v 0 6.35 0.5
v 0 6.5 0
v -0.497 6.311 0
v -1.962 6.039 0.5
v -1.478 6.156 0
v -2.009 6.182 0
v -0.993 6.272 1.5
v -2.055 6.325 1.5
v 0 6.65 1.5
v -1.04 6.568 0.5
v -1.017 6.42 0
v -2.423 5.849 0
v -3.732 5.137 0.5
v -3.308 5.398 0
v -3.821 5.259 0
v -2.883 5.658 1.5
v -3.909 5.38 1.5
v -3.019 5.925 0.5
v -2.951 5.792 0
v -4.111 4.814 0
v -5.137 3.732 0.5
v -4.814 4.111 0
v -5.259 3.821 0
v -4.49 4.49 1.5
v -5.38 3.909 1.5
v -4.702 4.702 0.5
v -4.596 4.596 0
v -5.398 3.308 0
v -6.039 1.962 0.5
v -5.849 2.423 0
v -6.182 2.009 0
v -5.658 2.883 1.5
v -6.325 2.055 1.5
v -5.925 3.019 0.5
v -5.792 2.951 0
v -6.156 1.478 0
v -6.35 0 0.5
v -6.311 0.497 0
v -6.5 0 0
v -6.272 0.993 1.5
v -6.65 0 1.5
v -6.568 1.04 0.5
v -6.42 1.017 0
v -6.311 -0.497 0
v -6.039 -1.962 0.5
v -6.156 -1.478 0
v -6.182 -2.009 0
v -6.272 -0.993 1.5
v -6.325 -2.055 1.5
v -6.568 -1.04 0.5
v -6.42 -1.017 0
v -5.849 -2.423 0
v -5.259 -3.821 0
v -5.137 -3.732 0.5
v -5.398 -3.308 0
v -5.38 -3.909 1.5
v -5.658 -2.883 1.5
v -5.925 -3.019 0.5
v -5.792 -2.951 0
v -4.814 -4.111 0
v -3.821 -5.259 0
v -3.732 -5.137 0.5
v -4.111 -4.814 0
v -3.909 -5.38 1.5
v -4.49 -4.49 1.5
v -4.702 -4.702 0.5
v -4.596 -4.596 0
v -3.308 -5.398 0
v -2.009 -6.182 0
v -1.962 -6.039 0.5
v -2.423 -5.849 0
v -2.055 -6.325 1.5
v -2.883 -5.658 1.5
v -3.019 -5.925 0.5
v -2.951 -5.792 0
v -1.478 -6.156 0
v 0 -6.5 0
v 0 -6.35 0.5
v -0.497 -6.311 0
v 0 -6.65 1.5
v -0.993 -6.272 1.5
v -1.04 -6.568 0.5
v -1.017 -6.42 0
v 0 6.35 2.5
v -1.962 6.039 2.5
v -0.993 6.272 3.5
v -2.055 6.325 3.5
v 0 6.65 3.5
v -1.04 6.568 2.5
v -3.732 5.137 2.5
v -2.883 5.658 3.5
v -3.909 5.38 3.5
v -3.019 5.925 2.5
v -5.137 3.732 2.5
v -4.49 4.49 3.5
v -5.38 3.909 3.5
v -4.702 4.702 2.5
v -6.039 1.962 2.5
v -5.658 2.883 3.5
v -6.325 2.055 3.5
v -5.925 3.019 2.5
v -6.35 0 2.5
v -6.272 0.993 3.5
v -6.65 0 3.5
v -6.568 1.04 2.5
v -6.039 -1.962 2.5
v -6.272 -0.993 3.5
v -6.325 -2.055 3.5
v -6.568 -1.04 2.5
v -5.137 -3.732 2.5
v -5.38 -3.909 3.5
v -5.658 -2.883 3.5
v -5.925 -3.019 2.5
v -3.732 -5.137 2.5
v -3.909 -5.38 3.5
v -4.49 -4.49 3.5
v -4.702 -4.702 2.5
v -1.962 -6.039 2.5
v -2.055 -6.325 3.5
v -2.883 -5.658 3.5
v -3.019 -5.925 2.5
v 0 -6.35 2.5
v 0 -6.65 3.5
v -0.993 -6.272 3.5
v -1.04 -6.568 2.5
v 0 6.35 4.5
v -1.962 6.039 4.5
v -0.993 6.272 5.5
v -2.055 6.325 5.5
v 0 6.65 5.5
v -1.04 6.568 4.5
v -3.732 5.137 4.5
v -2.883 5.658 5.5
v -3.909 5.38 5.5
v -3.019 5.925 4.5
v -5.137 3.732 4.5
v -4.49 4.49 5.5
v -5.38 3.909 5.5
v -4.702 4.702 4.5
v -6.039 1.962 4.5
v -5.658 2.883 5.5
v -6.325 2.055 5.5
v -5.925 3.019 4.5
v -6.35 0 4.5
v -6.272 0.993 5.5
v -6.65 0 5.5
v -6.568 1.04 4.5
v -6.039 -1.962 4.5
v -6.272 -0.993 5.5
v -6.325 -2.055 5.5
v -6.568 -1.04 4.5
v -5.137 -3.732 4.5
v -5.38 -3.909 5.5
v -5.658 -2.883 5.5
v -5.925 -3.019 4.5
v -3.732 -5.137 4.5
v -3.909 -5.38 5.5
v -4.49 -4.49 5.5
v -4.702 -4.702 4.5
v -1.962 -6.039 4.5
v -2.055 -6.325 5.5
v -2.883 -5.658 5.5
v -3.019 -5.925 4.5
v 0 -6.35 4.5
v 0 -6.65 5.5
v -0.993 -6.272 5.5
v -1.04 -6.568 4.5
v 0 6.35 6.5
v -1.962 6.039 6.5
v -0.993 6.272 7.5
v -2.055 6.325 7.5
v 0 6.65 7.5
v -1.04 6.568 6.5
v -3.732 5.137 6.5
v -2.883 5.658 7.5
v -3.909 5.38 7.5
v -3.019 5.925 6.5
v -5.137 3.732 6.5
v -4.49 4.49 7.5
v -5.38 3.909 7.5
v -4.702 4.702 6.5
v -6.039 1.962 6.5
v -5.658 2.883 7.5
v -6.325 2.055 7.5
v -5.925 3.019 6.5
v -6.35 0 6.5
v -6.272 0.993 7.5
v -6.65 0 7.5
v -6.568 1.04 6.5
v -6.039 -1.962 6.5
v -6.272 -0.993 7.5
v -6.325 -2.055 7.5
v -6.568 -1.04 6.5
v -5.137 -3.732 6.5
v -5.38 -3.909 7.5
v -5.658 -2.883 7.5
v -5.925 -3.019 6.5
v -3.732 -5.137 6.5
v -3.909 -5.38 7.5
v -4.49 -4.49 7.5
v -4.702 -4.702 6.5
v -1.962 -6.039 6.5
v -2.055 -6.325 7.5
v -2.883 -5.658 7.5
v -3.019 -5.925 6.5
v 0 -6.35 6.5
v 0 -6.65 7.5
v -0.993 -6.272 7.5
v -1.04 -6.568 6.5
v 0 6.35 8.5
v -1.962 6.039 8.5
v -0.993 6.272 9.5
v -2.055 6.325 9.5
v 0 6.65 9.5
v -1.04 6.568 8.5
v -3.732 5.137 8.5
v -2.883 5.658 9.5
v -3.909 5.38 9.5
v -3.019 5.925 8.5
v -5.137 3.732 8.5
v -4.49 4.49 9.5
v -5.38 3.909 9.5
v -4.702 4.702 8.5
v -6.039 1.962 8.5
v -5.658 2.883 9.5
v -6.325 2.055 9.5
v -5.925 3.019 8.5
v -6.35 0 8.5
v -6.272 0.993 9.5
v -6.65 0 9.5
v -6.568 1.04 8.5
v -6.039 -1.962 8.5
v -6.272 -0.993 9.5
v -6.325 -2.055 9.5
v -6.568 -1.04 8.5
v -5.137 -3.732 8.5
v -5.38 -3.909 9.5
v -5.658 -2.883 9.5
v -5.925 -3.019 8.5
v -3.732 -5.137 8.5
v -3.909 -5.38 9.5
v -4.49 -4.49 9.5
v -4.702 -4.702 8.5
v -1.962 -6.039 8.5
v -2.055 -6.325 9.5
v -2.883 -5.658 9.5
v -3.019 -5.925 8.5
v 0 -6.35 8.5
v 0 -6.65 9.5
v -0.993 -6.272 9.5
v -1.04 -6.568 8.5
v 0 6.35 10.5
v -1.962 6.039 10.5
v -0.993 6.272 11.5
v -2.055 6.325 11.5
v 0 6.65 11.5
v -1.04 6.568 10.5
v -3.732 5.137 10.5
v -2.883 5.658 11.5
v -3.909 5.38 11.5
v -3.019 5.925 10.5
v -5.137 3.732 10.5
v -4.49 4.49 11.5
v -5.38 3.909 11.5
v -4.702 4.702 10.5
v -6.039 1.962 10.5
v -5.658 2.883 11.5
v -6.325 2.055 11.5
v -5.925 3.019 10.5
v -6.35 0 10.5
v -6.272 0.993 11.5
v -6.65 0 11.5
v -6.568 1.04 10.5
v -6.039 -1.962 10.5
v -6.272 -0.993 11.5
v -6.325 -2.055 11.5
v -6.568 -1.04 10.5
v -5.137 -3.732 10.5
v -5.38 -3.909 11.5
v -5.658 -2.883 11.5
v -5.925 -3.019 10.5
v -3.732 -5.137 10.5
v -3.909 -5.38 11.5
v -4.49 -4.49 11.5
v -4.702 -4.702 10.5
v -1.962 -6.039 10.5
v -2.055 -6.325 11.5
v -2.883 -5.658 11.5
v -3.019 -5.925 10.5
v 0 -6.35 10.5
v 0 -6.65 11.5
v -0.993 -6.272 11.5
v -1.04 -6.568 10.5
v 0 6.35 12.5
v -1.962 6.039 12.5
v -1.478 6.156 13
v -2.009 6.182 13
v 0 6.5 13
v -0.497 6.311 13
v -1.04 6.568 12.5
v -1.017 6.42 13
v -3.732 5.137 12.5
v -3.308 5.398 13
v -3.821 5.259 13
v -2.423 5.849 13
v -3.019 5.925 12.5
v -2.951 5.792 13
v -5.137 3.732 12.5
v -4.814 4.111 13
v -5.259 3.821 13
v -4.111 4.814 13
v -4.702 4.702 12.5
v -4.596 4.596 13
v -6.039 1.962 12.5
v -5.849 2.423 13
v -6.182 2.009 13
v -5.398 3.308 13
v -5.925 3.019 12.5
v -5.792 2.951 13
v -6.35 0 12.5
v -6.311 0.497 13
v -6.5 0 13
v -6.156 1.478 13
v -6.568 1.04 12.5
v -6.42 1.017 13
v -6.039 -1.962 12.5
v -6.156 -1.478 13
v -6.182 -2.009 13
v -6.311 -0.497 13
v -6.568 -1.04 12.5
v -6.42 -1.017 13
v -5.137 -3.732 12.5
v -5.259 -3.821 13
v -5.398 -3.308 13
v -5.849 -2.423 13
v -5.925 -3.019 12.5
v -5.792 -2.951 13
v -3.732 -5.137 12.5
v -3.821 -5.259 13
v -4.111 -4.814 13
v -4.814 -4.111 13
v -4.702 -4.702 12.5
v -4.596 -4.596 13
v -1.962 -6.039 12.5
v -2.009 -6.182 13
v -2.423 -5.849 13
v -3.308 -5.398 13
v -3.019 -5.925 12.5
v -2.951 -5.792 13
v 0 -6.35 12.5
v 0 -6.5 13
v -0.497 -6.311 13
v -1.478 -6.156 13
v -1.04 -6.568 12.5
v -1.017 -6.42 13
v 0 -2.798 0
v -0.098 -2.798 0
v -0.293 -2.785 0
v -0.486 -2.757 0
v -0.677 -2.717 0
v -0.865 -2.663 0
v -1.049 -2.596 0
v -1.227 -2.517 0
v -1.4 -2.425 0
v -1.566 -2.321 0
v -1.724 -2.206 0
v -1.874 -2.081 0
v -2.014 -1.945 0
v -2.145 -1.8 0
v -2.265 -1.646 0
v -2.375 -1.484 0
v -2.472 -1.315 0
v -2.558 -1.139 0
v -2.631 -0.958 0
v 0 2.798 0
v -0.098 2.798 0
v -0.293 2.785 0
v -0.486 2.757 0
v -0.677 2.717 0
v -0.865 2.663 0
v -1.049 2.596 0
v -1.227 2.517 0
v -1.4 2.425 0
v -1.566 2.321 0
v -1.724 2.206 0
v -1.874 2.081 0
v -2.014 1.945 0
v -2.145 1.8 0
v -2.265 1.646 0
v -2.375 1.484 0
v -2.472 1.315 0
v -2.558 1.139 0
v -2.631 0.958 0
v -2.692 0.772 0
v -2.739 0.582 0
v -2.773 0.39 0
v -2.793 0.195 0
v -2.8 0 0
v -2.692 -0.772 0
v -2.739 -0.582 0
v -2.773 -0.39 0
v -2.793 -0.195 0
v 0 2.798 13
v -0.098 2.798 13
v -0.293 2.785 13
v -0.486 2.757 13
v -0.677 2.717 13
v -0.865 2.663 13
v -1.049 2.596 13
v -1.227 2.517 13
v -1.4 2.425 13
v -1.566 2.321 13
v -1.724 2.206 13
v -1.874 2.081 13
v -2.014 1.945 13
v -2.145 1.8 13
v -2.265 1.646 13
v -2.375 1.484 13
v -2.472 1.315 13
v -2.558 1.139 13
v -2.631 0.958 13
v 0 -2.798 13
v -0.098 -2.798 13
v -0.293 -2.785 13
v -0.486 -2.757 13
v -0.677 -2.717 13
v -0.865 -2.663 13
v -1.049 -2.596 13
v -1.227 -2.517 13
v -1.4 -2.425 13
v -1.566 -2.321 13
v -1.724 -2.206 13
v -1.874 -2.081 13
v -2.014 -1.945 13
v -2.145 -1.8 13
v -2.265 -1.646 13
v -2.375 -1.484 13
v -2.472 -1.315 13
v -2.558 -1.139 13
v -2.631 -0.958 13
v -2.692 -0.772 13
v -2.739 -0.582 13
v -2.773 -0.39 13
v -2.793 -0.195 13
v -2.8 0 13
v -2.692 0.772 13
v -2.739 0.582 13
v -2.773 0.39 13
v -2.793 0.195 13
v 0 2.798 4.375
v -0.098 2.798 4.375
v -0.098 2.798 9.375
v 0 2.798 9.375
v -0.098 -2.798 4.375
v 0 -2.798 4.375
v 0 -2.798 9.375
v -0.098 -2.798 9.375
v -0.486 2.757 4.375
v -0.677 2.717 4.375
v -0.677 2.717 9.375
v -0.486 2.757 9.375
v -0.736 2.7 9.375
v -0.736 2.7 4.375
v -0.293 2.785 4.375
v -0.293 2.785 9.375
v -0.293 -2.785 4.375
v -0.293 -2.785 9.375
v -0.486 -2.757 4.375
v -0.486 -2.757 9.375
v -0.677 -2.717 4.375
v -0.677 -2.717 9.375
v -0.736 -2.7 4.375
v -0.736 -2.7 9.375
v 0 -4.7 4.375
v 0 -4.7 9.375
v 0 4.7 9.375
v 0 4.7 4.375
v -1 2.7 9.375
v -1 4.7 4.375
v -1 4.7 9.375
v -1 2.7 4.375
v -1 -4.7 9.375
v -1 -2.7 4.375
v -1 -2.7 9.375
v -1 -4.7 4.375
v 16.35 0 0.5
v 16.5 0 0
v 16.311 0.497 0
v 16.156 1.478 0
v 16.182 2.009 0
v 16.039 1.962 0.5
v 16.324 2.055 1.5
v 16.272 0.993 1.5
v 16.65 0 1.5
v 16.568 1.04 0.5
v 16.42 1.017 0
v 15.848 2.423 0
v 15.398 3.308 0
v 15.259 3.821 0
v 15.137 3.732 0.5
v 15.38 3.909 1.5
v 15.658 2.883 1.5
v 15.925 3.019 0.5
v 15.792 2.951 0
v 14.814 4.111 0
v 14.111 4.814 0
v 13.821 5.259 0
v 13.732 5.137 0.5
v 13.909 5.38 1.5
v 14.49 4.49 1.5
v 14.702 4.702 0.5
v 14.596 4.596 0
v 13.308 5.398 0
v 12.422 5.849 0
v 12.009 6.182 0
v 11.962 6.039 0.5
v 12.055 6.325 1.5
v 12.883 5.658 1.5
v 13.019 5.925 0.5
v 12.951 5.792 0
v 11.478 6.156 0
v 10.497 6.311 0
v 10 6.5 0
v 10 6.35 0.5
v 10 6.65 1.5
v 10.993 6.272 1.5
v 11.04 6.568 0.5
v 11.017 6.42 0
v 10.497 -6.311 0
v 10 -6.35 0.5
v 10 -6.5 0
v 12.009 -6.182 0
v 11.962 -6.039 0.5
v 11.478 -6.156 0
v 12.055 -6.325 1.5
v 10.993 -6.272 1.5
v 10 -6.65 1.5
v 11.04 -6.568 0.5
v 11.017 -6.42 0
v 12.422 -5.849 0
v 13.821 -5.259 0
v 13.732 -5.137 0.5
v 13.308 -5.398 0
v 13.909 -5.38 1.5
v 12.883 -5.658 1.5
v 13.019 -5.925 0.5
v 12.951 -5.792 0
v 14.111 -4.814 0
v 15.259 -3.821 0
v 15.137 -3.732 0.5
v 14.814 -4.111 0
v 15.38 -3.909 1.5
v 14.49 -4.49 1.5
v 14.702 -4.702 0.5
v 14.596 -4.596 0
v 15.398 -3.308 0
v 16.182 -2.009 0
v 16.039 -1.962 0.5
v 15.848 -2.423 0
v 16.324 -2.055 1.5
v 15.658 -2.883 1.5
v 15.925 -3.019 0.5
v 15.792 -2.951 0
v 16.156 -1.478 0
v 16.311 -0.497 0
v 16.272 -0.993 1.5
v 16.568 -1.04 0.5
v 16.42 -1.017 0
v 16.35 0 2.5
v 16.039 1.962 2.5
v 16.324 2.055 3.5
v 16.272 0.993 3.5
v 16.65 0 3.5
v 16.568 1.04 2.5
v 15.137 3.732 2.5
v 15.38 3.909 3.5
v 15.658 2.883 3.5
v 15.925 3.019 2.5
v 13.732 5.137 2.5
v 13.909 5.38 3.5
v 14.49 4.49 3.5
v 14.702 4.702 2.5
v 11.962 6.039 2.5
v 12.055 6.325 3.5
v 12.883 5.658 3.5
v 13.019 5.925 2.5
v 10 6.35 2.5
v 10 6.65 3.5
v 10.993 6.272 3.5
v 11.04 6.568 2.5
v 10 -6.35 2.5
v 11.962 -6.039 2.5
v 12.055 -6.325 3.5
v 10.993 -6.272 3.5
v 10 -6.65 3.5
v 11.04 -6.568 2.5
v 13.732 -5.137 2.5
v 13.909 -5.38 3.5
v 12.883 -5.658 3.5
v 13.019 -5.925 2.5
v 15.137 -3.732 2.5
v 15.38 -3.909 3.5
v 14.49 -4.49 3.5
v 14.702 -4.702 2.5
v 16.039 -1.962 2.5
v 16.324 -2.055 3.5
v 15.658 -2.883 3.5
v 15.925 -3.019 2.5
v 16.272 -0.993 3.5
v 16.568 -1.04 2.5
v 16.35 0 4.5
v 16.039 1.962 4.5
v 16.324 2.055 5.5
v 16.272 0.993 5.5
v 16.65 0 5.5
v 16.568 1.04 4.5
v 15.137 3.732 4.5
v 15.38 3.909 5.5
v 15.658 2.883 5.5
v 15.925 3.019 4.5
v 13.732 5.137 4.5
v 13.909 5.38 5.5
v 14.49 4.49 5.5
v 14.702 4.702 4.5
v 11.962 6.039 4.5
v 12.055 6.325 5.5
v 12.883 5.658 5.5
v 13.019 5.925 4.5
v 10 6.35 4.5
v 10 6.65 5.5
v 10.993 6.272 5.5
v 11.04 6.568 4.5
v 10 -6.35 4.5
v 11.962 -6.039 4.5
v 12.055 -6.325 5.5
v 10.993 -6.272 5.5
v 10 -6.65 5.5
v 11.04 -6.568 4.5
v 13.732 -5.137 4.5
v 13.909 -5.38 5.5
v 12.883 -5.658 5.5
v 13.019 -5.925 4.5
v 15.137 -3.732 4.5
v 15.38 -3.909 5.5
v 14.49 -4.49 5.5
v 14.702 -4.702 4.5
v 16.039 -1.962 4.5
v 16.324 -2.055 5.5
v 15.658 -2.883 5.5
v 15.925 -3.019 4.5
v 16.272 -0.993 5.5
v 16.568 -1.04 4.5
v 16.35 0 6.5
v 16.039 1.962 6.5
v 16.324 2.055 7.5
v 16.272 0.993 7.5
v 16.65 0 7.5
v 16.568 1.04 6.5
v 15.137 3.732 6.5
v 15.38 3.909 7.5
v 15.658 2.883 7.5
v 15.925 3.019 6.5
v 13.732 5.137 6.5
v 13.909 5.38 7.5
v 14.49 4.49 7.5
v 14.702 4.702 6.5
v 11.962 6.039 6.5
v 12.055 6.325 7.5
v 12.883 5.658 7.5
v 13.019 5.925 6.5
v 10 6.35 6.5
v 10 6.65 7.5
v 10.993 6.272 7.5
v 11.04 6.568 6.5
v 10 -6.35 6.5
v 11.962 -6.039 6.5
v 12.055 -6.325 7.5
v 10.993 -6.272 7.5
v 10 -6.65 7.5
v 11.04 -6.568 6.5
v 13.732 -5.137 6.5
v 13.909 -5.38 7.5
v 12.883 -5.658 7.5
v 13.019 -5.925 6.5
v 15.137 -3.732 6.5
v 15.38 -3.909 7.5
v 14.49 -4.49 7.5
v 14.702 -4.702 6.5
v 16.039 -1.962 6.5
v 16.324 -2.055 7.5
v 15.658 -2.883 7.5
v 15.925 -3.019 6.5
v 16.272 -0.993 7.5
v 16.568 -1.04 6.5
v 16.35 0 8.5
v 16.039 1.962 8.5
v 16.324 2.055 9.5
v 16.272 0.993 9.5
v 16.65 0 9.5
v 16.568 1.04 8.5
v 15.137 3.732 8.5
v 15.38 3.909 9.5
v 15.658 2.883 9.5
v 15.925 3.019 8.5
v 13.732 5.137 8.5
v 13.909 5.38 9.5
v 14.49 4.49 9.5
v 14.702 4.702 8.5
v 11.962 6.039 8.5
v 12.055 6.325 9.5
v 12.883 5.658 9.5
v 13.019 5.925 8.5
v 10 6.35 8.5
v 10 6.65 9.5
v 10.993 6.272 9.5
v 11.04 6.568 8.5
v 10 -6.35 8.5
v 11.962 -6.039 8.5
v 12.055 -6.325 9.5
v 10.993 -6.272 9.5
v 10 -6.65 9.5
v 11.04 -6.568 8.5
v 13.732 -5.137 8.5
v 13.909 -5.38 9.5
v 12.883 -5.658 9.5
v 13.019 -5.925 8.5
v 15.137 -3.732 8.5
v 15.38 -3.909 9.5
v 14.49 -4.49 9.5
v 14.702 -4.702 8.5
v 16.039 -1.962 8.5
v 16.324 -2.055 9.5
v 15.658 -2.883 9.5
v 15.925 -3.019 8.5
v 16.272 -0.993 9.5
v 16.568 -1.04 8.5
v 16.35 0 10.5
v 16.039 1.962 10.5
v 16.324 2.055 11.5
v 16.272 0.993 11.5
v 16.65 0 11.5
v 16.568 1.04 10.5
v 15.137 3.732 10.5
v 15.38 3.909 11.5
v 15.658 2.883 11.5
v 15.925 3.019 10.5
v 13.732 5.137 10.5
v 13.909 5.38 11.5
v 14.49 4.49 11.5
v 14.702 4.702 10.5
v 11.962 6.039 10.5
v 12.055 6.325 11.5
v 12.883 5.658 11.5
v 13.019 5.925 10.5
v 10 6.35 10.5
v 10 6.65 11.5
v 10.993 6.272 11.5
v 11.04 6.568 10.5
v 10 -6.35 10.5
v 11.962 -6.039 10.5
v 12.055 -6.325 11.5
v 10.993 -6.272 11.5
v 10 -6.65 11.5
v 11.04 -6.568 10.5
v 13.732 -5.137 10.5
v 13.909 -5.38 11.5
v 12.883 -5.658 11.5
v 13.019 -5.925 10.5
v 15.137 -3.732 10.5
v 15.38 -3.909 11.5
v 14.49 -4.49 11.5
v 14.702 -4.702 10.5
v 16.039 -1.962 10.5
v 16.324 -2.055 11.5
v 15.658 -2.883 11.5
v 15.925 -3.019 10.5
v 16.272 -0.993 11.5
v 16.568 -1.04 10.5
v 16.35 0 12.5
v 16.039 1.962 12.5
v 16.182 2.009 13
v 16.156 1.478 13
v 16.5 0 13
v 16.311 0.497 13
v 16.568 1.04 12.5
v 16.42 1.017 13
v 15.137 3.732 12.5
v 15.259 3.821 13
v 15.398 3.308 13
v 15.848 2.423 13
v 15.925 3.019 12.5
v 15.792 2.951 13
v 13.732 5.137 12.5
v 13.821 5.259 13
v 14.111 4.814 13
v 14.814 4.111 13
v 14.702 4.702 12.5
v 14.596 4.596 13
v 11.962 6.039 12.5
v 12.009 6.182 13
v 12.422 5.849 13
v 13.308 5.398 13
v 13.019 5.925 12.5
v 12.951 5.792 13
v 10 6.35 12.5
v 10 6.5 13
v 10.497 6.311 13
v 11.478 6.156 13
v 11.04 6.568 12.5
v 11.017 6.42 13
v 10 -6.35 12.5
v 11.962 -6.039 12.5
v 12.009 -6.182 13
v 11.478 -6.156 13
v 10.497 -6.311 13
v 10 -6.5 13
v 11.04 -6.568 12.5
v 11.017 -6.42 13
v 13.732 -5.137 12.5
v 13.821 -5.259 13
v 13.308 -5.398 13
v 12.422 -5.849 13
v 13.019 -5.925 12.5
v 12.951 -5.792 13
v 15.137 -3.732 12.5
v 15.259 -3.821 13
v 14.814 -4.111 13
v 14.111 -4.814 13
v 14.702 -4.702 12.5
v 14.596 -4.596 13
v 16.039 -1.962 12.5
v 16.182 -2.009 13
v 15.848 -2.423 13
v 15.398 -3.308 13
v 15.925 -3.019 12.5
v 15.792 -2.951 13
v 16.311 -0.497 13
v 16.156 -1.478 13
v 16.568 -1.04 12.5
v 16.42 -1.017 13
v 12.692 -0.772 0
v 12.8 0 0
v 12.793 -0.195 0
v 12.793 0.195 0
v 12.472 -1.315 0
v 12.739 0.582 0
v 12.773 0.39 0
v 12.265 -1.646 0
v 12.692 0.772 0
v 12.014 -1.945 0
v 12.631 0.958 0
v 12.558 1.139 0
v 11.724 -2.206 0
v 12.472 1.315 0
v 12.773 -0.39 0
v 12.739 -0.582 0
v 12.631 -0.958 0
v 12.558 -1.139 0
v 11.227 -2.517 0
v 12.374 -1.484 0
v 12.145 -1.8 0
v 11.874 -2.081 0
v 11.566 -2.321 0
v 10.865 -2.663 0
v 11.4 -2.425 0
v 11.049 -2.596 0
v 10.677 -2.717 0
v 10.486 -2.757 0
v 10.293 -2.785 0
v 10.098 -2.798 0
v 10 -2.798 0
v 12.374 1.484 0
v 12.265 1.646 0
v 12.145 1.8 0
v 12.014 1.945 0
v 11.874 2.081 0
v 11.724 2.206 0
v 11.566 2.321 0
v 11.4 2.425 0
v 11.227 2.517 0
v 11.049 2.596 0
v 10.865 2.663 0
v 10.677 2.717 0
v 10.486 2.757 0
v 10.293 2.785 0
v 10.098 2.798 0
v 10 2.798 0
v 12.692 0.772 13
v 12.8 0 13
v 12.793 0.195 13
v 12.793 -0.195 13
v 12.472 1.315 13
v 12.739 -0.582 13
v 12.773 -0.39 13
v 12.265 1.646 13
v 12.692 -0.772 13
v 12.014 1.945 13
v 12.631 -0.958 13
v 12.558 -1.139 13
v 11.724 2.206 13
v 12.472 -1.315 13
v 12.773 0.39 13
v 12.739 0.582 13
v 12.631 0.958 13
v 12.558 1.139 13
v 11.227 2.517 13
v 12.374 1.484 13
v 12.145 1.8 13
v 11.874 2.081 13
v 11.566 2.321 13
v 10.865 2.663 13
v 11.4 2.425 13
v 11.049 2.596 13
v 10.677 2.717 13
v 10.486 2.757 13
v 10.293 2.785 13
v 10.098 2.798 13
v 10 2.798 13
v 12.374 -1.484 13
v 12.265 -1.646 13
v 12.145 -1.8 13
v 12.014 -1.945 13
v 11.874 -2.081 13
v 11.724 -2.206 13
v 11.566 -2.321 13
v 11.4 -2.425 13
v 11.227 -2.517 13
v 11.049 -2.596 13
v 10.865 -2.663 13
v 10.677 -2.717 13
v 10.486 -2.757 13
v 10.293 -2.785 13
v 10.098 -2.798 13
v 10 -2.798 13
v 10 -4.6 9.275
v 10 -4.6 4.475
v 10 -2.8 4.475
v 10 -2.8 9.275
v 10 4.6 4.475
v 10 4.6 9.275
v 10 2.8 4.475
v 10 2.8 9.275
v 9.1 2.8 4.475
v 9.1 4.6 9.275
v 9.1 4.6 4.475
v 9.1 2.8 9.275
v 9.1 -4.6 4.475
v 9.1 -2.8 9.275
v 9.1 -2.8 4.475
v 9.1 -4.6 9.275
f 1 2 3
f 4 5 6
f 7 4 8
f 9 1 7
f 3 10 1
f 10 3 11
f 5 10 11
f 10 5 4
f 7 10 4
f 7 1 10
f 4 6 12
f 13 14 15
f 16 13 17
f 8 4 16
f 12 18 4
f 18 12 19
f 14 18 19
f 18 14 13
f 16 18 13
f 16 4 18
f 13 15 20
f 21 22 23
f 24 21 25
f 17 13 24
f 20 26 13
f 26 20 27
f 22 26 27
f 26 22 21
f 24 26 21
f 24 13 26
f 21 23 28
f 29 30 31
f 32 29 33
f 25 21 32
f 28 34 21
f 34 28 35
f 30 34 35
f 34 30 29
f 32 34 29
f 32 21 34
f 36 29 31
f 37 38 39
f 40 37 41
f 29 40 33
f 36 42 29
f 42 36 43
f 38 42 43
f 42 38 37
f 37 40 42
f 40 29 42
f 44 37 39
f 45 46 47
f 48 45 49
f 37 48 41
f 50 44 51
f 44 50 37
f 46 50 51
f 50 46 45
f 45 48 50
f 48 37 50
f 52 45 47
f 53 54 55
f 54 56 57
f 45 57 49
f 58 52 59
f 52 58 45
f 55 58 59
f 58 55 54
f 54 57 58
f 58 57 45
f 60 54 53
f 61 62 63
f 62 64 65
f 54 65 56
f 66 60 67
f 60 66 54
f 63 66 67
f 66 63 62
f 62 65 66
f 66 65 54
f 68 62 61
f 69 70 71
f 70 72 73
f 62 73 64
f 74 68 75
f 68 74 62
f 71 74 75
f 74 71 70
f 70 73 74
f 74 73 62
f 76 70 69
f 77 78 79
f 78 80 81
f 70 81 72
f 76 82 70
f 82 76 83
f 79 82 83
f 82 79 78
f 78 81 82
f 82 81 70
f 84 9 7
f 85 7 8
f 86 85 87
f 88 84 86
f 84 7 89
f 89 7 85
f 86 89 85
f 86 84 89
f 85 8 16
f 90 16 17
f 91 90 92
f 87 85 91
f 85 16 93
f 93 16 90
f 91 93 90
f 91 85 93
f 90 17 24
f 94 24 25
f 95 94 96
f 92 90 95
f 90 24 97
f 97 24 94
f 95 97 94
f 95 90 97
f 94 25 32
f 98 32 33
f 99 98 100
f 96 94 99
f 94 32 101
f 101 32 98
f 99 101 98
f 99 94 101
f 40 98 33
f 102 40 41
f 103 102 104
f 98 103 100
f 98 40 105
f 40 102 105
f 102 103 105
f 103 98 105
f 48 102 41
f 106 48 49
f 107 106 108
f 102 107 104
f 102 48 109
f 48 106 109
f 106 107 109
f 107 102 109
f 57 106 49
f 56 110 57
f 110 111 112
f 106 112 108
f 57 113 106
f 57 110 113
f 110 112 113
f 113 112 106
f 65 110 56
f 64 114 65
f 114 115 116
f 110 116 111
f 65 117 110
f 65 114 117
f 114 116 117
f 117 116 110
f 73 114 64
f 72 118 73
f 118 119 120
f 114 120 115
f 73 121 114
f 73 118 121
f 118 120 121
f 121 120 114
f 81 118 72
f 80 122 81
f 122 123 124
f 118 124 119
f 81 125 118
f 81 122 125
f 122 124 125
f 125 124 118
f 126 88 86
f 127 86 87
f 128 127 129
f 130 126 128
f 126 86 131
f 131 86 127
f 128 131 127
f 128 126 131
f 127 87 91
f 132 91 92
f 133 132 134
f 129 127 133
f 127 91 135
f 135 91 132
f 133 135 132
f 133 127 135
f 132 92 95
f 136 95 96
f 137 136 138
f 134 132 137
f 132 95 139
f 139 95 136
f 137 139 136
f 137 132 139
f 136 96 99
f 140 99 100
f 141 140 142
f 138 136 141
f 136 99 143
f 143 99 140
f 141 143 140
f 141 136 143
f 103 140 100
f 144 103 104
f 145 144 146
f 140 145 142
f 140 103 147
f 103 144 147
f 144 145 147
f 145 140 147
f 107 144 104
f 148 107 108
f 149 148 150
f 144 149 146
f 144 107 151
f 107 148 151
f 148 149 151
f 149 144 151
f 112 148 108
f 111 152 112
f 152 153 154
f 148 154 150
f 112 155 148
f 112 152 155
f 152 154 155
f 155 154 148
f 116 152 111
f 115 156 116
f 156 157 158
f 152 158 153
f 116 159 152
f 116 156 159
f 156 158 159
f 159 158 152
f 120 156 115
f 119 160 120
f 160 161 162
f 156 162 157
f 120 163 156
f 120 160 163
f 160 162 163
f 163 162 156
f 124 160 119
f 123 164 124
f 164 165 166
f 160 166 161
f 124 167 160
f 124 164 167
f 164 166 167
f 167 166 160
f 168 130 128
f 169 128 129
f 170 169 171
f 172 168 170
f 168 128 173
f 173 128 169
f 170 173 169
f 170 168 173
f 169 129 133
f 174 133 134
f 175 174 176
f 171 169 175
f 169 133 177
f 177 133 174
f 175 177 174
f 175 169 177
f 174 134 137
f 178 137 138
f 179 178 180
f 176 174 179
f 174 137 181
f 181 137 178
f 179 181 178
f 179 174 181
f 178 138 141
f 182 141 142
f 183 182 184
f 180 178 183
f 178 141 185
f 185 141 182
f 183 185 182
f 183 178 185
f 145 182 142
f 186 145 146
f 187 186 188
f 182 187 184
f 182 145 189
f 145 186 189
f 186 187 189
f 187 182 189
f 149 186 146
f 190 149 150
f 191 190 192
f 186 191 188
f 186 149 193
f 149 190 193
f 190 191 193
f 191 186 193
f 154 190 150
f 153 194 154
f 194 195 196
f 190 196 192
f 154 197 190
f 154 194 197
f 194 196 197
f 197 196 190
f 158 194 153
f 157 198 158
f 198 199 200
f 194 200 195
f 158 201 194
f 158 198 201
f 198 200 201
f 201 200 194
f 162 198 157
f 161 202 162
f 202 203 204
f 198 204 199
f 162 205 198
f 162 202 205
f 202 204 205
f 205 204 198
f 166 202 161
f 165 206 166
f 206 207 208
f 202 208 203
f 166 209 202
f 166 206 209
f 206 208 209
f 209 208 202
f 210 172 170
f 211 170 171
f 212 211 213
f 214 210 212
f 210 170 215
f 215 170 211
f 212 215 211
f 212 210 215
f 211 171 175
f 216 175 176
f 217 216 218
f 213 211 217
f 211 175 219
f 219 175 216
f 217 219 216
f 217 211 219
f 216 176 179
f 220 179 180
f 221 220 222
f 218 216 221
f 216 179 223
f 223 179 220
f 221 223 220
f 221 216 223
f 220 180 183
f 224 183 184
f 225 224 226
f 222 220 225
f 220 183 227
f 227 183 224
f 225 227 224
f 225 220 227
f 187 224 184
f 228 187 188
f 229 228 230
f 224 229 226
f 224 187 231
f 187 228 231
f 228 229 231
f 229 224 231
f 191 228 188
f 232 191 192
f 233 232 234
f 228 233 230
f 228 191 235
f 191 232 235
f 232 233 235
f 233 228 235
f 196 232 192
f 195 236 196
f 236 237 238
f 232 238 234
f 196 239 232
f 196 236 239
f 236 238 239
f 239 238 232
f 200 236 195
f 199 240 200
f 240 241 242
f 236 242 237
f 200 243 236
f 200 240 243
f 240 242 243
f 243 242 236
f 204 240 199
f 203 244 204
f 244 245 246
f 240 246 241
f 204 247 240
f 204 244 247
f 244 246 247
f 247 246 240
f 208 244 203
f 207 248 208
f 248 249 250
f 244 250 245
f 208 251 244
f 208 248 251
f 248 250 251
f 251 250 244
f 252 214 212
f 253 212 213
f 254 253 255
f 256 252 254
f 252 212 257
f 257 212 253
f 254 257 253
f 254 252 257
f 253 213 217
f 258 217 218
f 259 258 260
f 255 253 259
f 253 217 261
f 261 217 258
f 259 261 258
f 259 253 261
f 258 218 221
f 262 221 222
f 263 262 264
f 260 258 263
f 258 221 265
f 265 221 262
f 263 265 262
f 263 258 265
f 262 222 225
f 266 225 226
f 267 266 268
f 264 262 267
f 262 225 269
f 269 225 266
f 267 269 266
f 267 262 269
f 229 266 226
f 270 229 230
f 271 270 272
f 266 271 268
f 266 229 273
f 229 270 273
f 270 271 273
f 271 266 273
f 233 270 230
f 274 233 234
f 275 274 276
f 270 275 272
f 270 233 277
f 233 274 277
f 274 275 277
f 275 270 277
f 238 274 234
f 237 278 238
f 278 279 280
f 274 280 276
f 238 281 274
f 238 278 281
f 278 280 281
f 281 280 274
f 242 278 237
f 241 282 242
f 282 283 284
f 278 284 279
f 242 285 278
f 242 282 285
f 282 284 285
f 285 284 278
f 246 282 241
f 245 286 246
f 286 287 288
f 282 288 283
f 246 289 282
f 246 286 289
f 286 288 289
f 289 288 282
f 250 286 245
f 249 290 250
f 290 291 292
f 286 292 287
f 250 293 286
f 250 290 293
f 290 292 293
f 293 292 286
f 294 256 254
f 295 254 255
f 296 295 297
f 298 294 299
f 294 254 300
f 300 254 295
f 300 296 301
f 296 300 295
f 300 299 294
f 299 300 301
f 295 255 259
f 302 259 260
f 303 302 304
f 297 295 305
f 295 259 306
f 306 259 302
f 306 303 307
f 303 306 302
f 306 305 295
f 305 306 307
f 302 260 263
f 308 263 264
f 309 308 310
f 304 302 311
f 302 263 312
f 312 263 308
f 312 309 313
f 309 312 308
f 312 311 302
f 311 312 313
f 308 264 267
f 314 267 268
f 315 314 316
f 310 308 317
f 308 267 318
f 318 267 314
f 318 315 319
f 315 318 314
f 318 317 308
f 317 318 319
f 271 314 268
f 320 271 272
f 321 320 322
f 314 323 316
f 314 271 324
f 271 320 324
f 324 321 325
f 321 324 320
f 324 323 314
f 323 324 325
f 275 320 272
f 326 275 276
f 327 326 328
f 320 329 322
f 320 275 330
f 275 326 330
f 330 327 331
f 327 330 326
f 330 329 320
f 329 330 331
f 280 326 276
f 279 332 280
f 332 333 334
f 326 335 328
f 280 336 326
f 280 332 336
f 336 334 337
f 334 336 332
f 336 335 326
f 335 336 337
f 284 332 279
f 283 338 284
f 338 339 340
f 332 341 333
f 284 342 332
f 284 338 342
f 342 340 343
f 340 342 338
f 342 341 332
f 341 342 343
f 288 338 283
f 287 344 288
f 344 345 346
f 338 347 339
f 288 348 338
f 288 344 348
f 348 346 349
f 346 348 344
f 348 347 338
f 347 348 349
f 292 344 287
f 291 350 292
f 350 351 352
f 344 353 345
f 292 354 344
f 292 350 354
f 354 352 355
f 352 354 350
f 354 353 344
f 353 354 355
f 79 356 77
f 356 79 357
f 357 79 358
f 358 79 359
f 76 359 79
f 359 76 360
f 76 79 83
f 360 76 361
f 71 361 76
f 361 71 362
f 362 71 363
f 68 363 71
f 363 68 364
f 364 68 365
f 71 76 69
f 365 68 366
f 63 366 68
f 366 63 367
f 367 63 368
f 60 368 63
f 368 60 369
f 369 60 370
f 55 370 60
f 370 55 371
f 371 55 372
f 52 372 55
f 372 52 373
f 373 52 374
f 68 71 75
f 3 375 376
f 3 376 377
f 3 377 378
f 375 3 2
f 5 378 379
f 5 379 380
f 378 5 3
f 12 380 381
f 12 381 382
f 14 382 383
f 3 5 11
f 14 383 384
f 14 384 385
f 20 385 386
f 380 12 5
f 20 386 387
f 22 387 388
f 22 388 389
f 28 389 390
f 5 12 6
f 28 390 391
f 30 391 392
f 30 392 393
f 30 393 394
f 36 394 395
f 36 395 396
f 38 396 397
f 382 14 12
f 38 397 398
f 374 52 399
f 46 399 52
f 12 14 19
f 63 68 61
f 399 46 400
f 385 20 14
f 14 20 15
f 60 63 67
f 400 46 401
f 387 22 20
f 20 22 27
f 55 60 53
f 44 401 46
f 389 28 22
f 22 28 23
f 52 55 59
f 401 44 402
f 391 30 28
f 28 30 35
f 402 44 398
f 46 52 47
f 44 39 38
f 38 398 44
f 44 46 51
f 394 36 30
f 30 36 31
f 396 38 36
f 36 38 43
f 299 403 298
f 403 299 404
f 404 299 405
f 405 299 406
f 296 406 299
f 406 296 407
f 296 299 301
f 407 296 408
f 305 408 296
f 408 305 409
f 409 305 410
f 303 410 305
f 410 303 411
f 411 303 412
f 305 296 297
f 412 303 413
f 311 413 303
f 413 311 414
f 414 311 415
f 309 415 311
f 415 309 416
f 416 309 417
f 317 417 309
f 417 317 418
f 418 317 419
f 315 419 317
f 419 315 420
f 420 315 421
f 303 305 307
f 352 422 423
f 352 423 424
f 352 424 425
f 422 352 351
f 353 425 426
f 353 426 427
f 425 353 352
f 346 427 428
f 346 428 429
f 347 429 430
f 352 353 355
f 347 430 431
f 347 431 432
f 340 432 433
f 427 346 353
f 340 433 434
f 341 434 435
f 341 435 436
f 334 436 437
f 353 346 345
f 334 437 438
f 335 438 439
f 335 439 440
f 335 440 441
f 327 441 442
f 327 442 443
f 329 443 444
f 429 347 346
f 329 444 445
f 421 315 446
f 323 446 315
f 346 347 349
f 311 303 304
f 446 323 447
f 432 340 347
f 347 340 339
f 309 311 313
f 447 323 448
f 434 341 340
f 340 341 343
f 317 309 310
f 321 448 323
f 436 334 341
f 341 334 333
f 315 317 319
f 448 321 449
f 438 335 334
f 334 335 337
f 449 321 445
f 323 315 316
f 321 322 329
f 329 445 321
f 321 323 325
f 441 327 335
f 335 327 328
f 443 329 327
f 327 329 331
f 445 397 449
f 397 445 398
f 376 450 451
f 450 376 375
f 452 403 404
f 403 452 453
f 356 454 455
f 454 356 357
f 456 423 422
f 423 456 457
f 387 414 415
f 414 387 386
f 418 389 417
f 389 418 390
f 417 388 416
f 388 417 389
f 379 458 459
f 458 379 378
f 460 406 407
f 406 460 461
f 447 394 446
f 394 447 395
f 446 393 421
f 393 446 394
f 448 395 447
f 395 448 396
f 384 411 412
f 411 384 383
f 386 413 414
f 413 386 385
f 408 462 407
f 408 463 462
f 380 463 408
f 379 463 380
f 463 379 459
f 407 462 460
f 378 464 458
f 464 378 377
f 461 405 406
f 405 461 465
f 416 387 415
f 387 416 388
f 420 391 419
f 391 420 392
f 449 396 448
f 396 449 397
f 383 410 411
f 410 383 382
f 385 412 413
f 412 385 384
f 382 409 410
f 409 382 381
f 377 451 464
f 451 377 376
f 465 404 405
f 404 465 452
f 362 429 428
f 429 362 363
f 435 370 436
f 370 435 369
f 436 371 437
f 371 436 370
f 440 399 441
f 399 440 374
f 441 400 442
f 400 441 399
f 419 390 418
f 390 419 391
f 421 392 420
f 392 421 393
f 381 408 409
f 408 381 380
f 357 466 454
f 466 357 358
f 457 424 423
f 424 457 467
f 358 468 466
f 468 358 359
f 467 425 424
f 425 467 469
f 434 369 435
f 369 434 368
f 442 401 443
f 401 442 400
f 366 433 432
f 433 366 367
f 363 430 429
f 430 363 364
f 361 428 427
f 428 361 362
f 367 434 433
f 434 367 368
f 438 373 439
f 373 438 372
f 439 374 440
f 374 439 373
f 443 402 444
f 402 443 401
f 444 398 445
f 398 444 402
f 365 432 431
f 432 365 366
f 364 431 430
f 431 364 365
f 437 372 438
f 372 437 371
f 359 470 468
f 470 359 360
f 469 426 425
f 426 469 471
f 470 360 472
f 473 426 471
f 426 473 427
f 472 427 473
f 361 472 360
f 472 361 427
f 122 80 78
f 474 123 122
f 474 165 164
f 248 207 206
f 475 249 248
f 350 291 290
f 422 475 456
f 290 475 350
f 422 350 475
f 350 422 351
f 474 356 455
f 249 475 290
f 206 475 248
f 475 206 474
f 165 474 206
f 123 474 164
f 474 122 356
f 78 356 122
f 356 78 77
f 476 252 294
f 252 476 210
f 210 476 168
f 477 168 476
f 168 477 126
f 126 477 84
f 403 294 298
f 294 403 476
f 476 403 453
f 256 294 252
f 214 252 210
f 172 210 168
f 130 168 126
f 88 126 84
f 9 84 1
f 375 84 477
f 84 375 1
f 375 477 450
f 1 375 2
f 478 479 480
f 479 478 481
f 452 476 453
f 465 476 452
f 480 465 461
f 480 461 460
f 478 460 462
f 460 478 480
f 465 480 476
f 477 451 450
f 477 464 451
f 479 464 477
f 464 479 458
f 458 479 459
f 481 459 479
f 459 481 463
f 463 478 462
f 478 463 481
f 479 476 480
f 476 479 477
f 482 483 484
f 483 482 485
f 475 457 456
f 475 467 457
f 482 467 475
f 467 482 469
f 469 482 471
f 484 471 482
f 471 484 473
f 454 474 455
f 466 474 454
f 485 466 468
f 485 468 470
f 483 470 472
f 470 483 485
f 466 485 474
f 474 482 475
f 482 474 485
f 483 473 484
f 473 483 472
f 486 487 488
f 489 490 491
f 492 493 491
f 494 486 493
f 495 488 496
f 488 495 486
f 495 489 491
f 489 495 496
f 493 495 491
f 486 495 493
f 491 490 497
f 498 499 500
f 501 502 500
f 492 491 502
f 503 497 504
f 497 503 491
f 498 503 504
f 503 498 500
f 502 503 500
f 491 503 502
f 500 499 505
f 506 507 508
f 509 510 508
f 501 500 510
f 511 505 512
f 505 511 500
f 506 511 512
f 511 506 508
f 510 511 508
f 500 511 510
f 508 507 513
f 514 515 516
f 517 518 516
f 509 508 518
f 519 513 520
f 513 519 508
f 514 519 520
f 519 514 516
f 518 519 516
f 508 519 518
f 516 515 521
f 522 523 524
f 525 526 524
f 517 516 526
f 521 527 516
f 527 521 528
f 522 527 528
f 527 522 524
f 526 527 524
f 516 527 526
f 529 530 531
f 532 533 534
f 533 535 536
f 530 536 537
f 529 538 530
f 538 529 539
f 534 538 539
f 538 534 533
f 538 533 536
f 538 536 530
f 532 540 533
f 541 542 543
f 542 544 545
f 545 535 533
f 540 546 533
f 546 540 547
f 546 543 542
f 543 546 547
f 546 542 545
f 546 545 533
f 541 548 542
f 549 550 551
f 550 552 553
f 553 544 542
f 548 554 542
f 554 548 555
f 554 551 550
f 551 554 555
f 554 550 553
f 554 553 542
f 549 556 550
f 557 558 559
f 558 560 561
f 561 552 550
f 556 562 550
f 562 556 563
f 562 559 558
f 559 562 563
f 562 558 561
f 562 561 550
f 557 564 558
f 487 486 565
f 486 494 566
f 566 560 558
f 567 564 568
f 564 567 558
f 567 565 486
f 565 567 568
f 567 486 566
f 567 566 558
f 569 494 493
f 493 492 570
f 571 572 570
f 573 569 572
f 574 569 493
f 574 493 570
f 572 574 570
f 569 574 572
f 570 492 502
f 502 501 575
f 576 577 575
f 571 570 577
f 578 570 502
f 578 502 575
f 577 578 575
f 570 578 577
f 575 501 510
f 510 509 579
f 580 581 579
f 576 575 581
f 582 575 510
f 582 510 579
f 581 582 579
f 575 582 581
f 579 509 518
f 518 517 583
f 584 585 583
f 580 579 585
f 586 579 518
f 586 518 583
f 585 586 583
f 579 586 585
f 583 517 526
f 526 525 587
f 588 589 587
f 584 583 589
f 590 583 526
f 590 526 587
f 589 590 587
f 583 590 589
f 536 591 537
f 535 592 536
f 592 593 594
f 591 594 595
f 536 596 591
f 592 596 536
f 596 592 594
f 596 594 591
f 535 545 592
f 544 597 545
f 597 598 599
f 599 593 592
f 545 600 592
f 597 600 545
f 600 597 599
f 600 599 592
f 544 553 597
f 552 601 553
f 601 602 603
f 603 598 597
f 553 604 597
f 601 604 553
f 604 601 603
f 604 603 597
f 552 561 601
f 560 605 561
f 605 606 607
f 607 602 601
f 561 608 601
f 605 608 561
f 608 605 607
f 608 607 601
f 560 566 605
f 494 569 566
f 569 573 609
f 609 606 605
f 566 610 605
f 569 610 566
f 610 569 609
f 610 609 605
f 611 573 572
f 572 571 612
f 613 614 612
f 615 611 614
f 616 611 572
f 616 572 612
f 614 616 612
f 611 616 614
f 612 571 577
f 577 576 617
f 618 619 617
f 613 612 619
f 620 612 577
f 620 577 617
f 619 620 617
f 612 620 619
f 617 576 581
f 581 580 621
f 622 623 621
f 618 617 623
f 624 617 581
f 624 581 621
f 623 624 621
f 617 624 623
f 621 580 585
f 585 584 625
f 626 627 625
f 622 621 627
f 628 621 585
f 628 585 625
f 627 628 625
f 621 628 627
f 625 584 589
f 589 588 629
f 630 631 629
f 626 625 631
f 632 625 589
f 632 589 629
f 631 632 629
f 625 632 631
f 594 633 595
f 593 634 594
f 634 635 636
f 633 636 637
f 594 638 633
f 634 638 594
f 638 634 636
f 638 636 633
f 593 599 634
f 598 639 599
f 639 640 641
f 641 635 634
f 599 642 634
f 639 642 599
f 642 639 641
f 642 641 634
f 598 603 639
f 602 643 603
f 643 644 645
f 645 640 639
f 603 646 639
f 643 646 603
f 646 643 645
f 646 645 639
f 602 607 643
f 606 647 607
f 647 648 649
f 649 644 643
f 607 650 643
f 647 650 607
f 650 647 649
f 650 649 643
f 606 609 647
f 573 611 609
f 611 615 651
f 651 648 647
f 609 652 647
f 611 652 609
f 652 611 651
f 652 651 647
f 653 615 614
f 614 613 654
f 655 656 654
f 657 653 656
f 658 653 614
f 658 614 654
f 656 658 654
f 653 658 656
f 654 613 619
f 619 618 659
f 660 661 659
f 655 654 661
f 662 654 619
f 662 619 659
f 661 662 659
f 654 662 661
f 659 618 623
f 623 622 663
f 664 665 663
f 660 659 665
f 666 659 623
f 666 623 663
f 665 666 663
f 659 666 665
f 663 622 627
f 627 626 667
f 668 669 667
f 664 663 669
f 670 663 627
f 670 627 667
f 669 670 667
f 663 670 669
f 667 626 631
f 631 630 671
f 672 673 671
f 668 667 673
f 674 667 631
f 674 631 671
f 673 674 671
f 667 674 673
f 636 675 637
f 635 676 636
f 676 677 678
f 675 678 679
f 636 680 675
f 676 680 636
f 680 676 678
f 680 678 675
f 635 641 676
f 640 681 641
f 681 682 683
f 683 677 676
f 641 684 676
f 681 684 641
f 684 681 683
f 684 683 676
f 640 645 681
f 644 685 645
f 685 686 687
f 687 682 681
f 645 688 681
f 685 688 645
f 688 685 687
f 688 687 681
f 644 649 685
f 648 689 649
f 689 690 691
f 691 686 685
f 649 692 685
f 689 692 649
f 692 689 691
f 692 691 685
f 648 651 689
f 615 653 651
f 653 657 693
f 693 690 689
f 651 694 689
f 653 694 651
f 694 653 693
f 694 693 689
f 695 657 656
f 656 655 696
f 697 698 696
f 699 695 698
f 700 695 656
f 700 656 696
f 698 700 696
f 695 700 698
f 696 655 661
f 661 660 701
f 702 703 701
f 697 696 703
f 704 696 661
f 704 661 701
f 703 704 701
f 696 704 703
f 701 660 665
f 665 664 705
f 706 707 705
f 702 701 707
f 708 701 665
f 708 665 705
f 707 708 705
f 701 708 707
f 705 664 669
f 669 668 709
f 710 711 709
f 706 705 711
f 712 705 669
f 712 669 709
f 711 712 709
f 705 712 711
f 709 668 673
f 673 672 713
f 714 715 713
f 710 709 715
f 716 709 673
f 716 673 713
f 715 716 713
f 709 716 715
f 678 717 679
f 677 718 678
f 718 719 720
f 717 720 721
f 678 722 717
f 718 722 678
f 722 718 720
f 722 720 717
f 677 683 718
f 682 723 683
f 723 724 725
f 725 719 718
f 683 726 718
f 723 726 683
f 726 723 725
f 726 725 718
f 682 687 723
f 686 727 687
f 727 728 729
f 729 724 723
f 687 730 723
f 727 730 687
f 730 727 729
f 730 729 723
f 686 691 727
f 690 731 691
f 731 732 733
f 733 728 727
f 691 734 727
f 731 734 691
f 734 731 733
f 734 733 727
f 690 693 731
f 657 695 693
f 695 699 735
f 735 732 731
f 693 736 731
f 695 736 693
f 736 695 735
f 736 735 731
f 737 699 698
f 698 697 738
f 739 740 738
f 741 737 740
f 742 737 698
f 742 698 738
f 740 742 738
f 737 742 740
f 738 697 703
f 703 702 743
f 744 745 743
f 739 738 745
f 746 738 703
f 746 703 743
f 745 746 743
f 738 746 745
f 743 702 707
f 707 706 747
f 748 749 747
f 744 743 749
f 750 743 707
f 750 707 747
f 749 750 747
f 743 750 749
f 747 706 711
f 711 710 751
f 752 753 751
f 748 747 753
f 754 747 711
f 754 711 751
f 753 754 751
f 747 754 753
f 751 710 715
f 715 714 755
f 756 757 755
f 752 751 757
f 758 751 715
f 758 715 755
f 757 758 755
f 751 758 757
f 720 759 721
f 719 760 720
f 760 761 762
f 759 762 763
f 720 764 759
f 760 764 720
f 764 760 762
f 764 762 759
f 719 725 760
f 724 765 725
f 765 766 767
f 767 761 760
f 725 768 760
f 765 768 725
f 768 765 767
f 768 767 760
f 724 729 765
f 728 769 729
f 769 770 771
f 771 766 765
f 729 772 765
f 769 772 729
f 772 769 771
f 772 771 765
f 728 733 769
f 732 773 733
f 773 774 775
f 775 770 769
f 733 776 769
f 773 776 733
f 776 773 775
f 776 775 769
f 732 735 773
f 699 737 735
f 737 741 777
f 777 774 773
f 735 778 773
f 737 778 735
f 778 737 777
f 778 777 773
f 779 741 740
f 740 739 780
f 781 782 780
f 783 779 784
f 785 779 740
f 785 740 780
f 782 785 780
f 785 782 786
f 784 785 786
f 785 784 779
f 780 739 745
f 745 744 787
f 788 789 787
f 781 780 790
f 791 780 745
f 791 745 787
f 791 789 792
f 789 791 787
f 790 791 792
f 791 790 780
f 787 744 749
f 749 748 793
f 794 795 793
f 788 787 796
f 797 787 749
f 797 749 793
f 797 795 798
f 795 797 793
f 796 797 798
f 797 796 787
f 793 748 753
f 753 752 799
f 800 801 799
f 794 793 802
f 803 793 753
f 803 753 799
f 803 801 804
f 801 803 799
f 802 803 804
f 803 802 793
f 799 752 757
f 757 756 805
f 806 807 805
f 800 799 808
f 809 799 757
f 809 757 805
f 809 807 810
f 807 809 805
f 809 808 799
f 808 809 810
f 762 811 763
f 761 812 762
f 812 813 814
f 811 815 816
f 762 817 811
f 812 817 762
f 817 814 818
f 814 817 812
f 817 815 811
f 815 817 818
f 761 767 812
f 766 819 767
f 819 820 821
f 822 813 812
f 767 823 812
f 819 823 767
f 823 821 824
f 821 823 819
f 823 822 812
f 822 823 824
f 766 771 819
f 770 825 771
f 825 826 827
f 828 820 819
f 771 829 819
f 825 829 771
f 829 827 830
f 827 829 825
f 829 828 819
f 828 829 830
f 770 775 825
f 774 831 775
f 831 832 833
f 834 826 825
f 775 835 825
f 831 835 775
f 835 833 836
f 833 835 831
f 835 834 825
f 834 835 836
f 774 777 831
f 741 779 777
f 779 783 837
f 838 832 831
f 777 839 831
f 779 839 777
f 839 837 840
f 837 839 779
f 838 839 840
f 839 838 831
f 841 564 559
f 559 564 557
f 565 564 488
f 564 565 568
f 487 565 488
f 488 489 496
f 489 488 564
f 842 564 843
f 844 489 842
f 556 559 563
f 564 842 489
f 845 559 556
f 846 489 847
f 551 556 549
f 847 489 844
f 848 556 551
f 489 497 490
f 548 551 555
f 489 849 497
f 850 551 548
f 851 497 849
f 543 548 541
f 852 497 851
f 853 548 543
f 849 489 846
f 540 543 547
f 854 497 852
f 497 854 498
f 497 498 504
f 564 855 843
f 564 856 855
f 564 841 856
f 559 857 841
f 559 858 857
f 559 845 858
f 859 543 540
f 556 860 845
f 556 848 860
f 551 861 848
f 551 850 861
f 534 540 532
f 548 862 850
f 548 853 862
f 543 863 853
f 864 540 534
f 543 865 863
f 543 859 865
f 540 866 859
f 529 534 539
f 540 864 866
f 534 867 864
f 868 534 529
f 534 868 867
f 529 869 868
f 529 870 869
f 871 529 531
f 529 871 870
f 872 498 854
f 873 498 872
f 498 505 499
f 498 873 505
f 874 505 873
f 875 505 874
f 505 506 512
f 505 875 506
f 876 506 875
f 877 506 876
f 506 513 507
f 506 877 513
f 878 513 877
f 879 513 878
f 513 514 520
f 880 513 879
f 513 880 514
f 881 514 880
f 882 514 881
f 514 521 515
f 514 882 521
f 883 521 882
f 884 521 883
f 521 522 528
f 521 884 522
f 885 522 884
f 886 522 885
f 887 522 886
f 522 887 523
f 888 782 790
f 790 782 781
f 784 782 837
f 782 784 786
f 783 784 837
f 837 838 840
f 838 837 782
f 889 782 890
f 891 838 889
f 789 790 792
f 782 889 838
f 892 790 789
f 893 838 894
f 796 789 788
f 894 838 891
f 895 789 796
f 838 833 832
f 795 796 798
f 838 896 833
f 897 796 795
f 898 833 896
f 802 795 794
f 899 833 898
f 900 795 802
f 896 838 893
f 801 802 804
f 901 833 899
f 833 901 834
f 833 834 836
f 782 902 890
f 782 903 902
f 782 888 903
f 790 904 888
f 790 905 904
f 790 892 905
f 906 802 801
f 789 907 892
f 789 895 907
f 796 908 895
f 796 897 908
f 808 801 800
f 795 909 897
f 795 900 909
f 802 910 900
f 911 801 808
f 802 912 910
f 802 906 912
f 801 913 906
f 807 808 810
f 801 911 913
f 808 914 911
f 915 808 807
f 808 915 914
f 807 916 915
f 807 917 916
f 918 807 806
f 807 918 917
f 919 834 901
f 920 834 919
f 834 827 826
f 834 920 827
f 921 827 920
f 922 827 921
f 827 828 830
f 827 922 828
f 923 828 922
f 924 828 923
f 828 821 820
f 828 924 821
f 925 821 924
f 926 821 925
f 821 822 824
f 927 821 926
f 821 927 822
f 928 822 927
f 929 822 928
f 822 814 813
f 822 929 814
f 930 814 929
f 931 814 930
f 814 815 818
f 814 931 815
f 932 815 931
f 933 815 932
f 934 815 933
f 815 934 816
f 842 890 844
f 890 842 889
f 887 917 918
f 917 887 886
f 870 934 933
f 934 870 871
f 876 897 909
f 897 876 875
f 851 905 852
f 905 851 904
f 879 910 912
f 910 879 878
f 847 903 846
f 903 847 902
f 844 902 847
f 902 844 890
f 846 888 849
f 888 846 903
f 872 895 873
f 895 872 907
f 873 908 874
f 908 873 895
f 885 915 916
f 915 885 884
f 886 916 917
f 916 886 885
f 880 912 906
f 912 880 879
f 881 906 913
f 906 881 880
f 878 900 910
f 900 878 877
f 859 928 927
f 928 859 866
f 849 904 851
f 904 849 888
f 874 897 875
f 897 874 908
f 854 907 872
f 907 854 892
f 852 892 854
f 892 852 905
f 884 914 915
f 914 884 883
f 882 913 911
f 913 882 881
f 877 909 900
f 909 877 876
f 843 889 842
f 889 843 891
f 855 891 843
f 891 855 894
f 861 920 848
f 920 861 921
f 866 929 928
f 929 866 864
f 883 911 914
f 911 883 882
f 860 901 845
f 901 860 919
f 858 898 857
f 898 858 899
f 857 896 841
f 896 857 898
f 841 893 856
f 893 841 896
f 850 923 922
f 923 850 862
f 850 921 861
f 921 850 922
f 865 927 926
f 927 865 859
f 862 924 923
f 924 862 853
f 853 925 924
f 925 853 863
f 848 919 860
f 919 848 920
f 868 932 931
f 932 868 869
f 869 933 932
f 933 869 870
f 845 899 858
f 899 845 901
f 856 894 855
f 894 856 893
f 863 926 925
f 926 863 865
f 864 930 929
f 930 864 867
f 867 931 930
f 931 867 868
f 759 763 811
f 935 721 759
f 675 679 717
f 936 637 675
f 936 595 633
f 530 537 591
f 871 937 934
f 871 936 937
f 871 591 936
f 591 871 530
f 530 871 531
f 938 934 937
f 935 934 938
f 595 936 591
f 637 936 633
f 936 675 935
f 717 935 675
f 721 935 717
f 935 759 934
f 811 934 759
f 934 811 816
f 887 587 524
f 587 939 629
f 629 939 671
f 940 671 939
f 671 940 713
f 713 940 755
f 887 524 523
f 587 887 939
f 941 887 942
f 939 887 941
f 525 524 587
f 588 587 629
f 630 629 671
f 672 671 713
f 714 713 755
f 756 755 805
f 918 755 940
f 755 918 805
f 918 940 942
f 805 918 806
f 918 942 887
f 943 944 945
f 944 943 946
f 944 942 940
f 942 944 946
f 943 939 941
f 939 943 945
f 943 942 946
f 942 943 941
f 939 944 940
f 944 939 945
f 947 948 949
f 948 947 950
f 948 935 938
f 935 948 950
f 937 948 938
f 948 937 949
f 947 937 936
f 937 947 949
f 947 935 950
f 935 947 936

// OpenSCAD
// file: knurledFinishLib_v2.scad
/*
 * knurledFinishLib_v2.scad
 * 
 * Written by aubenc @ Thingiverse
 *
 * This script is licensed under the Public Domain license.
 *
 * http://www.thingiverse.com/thing:31122
 *
 * Derived from knurledFinishLib.scad (also Public Domain license) available at
 *
 * http://www.thingiverse.com/thing:9095
 *
 * Usage:
 *
 *	 Drop this script somewhere where OpenSCAD can find it (your current project's
 *	 working directory/folder or your OpenSCAD libraries directory/folder).
 *
 *	 Add the line:
 *
 *		use <knurledFinishLib_v2.scad>
 *
 *	 in your OpenSCAD script and call either...
 *
 *    knurled_cyl( Knurled cylinder height,
 *                 Knurled cylinder outer diameter,
 *                 Knurl polyhedron width,
 *                 Knurl polyhedron height,
 *                 Knurl polyhedron depth,
 *                 Cylinder ends smoothed height,
 *                 Knurled surface smoothing amount );
 *
 *  ...or...
 *
 *    knurl();
 *
 *	If you use knurled_cyl() module, you need to specify the values for all and
 *
 *  Call the module ' help(); ' for a little bit more of detail
 *  and/or take a look to the PDF available at http://www.thingiverse.com/thing:9095
 *  for a in depth descrition of the knurl properties.
 */


module knurl(	k_cyl_hg	= 12,
					k_cyl_od	= 25,
					knurl_wd =  3,
					knurl_hg =  4,
					knurl_dp =  1.5,
					e_smooth =  2,
					s_smooth =  0)
{
    knurled_cyl(k_cyl_hg, k_cyl_od, 
                knurl_wd, knurl_hg, knurl_dp, 
                e_smooth, s_smooth);
}

module knurled_cyl(chg, cod, cwd, csh, cdp, fsh, smt)
{
    cord=(cod+cdp+cdp*smt/100)/2;
    cird=cord-cdp;
    cfn=round(2*cird*PI/cwd);
    clf=360/cfn;
    crn=ceil(chg/csh);

    echo("knurled cylinder max diameter: ", 2*cord);
    echo("knurled cylinder min diameter: ", 2*cird);

	 if( fsh < 0 )
    {
        union()
        {
            shape(fsh, cird+cdp*smt/100, cord, cfn*4, chg);

            translate([0,0,-(crn*csh-chg)/2])
              knurled_finish(cord, cird, clf, csh, cfn, crn);
        }
    }
    else if ( fsh == 0 )
    {
        intersection()
        {
            cylinder(h=chg, r=cord-cdp*smt/100, $fn=2*cfn, center=false);

            translate([0,0,-(crn*csh-chg)/2])
              knurled_finish(cord, cird, clf, csh, cfn, crn);
        }
    }
    else
    {
        intersection()
        {
            shape(fsh, cird, cord-cdp*smt/100, cfn*4, chg);

            translate([0,0,-(crn*csh-chg)/2])
              knurled_finish(cord, cird, clf, csh, cfn, crn);
        }
    }
}

module shape(hsh, ird, ord, fn4, hg)
{
	x0= 0;	x1 = hsh > 0 ? ird : ord;		x2 = hsh > 0 ? ord : ird;
	y0=-0.1;	y1=0;	y2=abs(hsh);	y3=hg-abs(hsh);	y4=hg;	y5=hg+0.1;

	if ( hsh >= 0 )
	{
		rotate_extrude(convexity=10, $fn=fn4)
		polygon(points=[	[x0,y1],[x1,y1],[x2,y2],[x2,y3],[x1,y4],[x0,y4]	],
					paths=[	[0,1,2,3,4,5]	]);
	}
	else
	{
		rotate_extrude(convexity=10, $fn=fn4)
		polygon(points=[	[x0,y0],[x1,y0],[x1,y1],[x2,y2],
								[x2,y3],[x1,y4],[x1,y5],[x0,y5]	],
					paths=[	[0,1,2,3,4,5,6,7]	]);
	}
}

module knurled_finish(ord, ird, lf, sh, fn, rn)
{
    for(j=[0:rn-1])
    assign(h0=sh*j, h1=sh*(j+1/2), h2=sh*(j+1))
    {
        for(i=[0:fn-1])
        assign(lf0=lf*i, lf1=lf*(i+1/2), lf2=lf*(i+1))
        {
            polyhedron(
                points=[
                     [ 0,0,h0],
                     [ ord*cos(lf0), ord*sin(lf0), h0],
                     [ ird*cos(lf1), ird*sin(lf1), h0],
                     [ ord*cos(lf2), ord*sin(lf2), h0],

                     [ ird*cos(lf0), ird*sin(lf0), h1],
                     [ ord*cos(lf1), ord*sin(lf1), h1],
                     [ ird*cos(lf2), ird*sin(lf2), h1],

                     [ 0,0,h2],
                     [ ord*cos(lf0), ord*sin(lf0), h2],
                     [ ird*cos(lf1), ird*sin(lf1), h2],
                     [ ord*cos(lf2), ord*sin(lf2), h2]
                    ],
                triangles=[
                     [0,1,2],[2,3,0],
                     [1,0,4],[4,0,7],[7,8,4],
                     [8,7,9],[10,9,7],
                     [10,7,6],[6,7,0],[3,6,0],
                     [2,1,4],[3,2,6],[10,6,9],[8,9,4],
                     [4,5,2],[2,5,6],[6,5,9],[9,5,4]
                    ],
                convexity=5);
         }
    }
}

module knurl_help()
{
	echo();
	echo("    Knurled Surface Library  v2  ");
   echo("");
	echo("      Modules:    ");
	echo("");
	echo("        knurled_cyl(parameters... );    -    Requires a value for each an every expected parameter (see bellow)    ");
	echo("");
	echo("        knurl();    -    Call to the previous module with a set of default parameters,    ");
	echo("                                  values may be changed by adding 'parameter_name=value'        i.e.     knurl(s_smooth=40);    ");
	echo("");
	echo("      Parameters, all of them in mm but the last one.    ");
	echo("");
	echo("        k_cyl_hg       -   [ 12   ]  ,,  Height for the knurled cylinder    ");
	echo("        k_cyl_od      -   [ 25   ]  ,,  Cylinder's Outer Diameter before applying the knurled surfacefinishing.    ");
	echo("        knurl_wd     -   [   3   ]  ,,  Knurl's Width.    ");
	echo("        knurl_hg      -   [   4   ]  ,,  Knurl's Height.    ");
	echo("        knurl_dp     -   [  1.5 ]  ,,  Knurl's Depth.    ");
	echo("        e_smooth   -    [  2   ]  ,,  Bevel's Height at the bottom and the top of the cylinder    ");
	echo("        s_smooth   -    [  0   ]  ,,  Knurl's Surface Smoothing :  File donwn the top of the knurl this value, i.e. 40 will snooth it a 40%.    ");
	echo("");
}
// main file
$fn = 90;
include <./knurledFinishLib_v2.scad>;

module bolex_rewind_knurled_handle () {
  difference () {
    knurled_cyl(13, 13, 2, 2, .3, 0, 0);
    cylinder(r = 5.6 / 2, h = 40, center = true);
  }
}

module bolex_rewind_knurled_handle_SPLIT (piece = 0) {
  difference () {
    bolex_rewind_knurled_handle();
    if (piece == 0) {
      translate([50, 0, 0]) cube([100, 100, 100], center = true);
      translate([0, 3.7, 13.75 / 2]) cube([2, 2, 5], center = true);
      translate([0, -3.7, 13.75 / 2]) cube([2, 2, 5], center = true);
    } else if (piece == 1) {
      difference () {
        translate([-50, 0, 0]) cube([100, 100, 100], center = true);
        translate([0, 3.7, 13.75 / 2]) cube([1.8, 1.8, 4.8], center = true);
        translate([0, -3.7, 13.75 / 2]) cube([1.8, 1.8, 4.8], center = true);
      }
    }
  }
}

bolex_rewind_knurled_handle_SPLIT(0);
translate([10, 0, 0]) bolex_rewind_knurled_handle_SPLIT(1);
